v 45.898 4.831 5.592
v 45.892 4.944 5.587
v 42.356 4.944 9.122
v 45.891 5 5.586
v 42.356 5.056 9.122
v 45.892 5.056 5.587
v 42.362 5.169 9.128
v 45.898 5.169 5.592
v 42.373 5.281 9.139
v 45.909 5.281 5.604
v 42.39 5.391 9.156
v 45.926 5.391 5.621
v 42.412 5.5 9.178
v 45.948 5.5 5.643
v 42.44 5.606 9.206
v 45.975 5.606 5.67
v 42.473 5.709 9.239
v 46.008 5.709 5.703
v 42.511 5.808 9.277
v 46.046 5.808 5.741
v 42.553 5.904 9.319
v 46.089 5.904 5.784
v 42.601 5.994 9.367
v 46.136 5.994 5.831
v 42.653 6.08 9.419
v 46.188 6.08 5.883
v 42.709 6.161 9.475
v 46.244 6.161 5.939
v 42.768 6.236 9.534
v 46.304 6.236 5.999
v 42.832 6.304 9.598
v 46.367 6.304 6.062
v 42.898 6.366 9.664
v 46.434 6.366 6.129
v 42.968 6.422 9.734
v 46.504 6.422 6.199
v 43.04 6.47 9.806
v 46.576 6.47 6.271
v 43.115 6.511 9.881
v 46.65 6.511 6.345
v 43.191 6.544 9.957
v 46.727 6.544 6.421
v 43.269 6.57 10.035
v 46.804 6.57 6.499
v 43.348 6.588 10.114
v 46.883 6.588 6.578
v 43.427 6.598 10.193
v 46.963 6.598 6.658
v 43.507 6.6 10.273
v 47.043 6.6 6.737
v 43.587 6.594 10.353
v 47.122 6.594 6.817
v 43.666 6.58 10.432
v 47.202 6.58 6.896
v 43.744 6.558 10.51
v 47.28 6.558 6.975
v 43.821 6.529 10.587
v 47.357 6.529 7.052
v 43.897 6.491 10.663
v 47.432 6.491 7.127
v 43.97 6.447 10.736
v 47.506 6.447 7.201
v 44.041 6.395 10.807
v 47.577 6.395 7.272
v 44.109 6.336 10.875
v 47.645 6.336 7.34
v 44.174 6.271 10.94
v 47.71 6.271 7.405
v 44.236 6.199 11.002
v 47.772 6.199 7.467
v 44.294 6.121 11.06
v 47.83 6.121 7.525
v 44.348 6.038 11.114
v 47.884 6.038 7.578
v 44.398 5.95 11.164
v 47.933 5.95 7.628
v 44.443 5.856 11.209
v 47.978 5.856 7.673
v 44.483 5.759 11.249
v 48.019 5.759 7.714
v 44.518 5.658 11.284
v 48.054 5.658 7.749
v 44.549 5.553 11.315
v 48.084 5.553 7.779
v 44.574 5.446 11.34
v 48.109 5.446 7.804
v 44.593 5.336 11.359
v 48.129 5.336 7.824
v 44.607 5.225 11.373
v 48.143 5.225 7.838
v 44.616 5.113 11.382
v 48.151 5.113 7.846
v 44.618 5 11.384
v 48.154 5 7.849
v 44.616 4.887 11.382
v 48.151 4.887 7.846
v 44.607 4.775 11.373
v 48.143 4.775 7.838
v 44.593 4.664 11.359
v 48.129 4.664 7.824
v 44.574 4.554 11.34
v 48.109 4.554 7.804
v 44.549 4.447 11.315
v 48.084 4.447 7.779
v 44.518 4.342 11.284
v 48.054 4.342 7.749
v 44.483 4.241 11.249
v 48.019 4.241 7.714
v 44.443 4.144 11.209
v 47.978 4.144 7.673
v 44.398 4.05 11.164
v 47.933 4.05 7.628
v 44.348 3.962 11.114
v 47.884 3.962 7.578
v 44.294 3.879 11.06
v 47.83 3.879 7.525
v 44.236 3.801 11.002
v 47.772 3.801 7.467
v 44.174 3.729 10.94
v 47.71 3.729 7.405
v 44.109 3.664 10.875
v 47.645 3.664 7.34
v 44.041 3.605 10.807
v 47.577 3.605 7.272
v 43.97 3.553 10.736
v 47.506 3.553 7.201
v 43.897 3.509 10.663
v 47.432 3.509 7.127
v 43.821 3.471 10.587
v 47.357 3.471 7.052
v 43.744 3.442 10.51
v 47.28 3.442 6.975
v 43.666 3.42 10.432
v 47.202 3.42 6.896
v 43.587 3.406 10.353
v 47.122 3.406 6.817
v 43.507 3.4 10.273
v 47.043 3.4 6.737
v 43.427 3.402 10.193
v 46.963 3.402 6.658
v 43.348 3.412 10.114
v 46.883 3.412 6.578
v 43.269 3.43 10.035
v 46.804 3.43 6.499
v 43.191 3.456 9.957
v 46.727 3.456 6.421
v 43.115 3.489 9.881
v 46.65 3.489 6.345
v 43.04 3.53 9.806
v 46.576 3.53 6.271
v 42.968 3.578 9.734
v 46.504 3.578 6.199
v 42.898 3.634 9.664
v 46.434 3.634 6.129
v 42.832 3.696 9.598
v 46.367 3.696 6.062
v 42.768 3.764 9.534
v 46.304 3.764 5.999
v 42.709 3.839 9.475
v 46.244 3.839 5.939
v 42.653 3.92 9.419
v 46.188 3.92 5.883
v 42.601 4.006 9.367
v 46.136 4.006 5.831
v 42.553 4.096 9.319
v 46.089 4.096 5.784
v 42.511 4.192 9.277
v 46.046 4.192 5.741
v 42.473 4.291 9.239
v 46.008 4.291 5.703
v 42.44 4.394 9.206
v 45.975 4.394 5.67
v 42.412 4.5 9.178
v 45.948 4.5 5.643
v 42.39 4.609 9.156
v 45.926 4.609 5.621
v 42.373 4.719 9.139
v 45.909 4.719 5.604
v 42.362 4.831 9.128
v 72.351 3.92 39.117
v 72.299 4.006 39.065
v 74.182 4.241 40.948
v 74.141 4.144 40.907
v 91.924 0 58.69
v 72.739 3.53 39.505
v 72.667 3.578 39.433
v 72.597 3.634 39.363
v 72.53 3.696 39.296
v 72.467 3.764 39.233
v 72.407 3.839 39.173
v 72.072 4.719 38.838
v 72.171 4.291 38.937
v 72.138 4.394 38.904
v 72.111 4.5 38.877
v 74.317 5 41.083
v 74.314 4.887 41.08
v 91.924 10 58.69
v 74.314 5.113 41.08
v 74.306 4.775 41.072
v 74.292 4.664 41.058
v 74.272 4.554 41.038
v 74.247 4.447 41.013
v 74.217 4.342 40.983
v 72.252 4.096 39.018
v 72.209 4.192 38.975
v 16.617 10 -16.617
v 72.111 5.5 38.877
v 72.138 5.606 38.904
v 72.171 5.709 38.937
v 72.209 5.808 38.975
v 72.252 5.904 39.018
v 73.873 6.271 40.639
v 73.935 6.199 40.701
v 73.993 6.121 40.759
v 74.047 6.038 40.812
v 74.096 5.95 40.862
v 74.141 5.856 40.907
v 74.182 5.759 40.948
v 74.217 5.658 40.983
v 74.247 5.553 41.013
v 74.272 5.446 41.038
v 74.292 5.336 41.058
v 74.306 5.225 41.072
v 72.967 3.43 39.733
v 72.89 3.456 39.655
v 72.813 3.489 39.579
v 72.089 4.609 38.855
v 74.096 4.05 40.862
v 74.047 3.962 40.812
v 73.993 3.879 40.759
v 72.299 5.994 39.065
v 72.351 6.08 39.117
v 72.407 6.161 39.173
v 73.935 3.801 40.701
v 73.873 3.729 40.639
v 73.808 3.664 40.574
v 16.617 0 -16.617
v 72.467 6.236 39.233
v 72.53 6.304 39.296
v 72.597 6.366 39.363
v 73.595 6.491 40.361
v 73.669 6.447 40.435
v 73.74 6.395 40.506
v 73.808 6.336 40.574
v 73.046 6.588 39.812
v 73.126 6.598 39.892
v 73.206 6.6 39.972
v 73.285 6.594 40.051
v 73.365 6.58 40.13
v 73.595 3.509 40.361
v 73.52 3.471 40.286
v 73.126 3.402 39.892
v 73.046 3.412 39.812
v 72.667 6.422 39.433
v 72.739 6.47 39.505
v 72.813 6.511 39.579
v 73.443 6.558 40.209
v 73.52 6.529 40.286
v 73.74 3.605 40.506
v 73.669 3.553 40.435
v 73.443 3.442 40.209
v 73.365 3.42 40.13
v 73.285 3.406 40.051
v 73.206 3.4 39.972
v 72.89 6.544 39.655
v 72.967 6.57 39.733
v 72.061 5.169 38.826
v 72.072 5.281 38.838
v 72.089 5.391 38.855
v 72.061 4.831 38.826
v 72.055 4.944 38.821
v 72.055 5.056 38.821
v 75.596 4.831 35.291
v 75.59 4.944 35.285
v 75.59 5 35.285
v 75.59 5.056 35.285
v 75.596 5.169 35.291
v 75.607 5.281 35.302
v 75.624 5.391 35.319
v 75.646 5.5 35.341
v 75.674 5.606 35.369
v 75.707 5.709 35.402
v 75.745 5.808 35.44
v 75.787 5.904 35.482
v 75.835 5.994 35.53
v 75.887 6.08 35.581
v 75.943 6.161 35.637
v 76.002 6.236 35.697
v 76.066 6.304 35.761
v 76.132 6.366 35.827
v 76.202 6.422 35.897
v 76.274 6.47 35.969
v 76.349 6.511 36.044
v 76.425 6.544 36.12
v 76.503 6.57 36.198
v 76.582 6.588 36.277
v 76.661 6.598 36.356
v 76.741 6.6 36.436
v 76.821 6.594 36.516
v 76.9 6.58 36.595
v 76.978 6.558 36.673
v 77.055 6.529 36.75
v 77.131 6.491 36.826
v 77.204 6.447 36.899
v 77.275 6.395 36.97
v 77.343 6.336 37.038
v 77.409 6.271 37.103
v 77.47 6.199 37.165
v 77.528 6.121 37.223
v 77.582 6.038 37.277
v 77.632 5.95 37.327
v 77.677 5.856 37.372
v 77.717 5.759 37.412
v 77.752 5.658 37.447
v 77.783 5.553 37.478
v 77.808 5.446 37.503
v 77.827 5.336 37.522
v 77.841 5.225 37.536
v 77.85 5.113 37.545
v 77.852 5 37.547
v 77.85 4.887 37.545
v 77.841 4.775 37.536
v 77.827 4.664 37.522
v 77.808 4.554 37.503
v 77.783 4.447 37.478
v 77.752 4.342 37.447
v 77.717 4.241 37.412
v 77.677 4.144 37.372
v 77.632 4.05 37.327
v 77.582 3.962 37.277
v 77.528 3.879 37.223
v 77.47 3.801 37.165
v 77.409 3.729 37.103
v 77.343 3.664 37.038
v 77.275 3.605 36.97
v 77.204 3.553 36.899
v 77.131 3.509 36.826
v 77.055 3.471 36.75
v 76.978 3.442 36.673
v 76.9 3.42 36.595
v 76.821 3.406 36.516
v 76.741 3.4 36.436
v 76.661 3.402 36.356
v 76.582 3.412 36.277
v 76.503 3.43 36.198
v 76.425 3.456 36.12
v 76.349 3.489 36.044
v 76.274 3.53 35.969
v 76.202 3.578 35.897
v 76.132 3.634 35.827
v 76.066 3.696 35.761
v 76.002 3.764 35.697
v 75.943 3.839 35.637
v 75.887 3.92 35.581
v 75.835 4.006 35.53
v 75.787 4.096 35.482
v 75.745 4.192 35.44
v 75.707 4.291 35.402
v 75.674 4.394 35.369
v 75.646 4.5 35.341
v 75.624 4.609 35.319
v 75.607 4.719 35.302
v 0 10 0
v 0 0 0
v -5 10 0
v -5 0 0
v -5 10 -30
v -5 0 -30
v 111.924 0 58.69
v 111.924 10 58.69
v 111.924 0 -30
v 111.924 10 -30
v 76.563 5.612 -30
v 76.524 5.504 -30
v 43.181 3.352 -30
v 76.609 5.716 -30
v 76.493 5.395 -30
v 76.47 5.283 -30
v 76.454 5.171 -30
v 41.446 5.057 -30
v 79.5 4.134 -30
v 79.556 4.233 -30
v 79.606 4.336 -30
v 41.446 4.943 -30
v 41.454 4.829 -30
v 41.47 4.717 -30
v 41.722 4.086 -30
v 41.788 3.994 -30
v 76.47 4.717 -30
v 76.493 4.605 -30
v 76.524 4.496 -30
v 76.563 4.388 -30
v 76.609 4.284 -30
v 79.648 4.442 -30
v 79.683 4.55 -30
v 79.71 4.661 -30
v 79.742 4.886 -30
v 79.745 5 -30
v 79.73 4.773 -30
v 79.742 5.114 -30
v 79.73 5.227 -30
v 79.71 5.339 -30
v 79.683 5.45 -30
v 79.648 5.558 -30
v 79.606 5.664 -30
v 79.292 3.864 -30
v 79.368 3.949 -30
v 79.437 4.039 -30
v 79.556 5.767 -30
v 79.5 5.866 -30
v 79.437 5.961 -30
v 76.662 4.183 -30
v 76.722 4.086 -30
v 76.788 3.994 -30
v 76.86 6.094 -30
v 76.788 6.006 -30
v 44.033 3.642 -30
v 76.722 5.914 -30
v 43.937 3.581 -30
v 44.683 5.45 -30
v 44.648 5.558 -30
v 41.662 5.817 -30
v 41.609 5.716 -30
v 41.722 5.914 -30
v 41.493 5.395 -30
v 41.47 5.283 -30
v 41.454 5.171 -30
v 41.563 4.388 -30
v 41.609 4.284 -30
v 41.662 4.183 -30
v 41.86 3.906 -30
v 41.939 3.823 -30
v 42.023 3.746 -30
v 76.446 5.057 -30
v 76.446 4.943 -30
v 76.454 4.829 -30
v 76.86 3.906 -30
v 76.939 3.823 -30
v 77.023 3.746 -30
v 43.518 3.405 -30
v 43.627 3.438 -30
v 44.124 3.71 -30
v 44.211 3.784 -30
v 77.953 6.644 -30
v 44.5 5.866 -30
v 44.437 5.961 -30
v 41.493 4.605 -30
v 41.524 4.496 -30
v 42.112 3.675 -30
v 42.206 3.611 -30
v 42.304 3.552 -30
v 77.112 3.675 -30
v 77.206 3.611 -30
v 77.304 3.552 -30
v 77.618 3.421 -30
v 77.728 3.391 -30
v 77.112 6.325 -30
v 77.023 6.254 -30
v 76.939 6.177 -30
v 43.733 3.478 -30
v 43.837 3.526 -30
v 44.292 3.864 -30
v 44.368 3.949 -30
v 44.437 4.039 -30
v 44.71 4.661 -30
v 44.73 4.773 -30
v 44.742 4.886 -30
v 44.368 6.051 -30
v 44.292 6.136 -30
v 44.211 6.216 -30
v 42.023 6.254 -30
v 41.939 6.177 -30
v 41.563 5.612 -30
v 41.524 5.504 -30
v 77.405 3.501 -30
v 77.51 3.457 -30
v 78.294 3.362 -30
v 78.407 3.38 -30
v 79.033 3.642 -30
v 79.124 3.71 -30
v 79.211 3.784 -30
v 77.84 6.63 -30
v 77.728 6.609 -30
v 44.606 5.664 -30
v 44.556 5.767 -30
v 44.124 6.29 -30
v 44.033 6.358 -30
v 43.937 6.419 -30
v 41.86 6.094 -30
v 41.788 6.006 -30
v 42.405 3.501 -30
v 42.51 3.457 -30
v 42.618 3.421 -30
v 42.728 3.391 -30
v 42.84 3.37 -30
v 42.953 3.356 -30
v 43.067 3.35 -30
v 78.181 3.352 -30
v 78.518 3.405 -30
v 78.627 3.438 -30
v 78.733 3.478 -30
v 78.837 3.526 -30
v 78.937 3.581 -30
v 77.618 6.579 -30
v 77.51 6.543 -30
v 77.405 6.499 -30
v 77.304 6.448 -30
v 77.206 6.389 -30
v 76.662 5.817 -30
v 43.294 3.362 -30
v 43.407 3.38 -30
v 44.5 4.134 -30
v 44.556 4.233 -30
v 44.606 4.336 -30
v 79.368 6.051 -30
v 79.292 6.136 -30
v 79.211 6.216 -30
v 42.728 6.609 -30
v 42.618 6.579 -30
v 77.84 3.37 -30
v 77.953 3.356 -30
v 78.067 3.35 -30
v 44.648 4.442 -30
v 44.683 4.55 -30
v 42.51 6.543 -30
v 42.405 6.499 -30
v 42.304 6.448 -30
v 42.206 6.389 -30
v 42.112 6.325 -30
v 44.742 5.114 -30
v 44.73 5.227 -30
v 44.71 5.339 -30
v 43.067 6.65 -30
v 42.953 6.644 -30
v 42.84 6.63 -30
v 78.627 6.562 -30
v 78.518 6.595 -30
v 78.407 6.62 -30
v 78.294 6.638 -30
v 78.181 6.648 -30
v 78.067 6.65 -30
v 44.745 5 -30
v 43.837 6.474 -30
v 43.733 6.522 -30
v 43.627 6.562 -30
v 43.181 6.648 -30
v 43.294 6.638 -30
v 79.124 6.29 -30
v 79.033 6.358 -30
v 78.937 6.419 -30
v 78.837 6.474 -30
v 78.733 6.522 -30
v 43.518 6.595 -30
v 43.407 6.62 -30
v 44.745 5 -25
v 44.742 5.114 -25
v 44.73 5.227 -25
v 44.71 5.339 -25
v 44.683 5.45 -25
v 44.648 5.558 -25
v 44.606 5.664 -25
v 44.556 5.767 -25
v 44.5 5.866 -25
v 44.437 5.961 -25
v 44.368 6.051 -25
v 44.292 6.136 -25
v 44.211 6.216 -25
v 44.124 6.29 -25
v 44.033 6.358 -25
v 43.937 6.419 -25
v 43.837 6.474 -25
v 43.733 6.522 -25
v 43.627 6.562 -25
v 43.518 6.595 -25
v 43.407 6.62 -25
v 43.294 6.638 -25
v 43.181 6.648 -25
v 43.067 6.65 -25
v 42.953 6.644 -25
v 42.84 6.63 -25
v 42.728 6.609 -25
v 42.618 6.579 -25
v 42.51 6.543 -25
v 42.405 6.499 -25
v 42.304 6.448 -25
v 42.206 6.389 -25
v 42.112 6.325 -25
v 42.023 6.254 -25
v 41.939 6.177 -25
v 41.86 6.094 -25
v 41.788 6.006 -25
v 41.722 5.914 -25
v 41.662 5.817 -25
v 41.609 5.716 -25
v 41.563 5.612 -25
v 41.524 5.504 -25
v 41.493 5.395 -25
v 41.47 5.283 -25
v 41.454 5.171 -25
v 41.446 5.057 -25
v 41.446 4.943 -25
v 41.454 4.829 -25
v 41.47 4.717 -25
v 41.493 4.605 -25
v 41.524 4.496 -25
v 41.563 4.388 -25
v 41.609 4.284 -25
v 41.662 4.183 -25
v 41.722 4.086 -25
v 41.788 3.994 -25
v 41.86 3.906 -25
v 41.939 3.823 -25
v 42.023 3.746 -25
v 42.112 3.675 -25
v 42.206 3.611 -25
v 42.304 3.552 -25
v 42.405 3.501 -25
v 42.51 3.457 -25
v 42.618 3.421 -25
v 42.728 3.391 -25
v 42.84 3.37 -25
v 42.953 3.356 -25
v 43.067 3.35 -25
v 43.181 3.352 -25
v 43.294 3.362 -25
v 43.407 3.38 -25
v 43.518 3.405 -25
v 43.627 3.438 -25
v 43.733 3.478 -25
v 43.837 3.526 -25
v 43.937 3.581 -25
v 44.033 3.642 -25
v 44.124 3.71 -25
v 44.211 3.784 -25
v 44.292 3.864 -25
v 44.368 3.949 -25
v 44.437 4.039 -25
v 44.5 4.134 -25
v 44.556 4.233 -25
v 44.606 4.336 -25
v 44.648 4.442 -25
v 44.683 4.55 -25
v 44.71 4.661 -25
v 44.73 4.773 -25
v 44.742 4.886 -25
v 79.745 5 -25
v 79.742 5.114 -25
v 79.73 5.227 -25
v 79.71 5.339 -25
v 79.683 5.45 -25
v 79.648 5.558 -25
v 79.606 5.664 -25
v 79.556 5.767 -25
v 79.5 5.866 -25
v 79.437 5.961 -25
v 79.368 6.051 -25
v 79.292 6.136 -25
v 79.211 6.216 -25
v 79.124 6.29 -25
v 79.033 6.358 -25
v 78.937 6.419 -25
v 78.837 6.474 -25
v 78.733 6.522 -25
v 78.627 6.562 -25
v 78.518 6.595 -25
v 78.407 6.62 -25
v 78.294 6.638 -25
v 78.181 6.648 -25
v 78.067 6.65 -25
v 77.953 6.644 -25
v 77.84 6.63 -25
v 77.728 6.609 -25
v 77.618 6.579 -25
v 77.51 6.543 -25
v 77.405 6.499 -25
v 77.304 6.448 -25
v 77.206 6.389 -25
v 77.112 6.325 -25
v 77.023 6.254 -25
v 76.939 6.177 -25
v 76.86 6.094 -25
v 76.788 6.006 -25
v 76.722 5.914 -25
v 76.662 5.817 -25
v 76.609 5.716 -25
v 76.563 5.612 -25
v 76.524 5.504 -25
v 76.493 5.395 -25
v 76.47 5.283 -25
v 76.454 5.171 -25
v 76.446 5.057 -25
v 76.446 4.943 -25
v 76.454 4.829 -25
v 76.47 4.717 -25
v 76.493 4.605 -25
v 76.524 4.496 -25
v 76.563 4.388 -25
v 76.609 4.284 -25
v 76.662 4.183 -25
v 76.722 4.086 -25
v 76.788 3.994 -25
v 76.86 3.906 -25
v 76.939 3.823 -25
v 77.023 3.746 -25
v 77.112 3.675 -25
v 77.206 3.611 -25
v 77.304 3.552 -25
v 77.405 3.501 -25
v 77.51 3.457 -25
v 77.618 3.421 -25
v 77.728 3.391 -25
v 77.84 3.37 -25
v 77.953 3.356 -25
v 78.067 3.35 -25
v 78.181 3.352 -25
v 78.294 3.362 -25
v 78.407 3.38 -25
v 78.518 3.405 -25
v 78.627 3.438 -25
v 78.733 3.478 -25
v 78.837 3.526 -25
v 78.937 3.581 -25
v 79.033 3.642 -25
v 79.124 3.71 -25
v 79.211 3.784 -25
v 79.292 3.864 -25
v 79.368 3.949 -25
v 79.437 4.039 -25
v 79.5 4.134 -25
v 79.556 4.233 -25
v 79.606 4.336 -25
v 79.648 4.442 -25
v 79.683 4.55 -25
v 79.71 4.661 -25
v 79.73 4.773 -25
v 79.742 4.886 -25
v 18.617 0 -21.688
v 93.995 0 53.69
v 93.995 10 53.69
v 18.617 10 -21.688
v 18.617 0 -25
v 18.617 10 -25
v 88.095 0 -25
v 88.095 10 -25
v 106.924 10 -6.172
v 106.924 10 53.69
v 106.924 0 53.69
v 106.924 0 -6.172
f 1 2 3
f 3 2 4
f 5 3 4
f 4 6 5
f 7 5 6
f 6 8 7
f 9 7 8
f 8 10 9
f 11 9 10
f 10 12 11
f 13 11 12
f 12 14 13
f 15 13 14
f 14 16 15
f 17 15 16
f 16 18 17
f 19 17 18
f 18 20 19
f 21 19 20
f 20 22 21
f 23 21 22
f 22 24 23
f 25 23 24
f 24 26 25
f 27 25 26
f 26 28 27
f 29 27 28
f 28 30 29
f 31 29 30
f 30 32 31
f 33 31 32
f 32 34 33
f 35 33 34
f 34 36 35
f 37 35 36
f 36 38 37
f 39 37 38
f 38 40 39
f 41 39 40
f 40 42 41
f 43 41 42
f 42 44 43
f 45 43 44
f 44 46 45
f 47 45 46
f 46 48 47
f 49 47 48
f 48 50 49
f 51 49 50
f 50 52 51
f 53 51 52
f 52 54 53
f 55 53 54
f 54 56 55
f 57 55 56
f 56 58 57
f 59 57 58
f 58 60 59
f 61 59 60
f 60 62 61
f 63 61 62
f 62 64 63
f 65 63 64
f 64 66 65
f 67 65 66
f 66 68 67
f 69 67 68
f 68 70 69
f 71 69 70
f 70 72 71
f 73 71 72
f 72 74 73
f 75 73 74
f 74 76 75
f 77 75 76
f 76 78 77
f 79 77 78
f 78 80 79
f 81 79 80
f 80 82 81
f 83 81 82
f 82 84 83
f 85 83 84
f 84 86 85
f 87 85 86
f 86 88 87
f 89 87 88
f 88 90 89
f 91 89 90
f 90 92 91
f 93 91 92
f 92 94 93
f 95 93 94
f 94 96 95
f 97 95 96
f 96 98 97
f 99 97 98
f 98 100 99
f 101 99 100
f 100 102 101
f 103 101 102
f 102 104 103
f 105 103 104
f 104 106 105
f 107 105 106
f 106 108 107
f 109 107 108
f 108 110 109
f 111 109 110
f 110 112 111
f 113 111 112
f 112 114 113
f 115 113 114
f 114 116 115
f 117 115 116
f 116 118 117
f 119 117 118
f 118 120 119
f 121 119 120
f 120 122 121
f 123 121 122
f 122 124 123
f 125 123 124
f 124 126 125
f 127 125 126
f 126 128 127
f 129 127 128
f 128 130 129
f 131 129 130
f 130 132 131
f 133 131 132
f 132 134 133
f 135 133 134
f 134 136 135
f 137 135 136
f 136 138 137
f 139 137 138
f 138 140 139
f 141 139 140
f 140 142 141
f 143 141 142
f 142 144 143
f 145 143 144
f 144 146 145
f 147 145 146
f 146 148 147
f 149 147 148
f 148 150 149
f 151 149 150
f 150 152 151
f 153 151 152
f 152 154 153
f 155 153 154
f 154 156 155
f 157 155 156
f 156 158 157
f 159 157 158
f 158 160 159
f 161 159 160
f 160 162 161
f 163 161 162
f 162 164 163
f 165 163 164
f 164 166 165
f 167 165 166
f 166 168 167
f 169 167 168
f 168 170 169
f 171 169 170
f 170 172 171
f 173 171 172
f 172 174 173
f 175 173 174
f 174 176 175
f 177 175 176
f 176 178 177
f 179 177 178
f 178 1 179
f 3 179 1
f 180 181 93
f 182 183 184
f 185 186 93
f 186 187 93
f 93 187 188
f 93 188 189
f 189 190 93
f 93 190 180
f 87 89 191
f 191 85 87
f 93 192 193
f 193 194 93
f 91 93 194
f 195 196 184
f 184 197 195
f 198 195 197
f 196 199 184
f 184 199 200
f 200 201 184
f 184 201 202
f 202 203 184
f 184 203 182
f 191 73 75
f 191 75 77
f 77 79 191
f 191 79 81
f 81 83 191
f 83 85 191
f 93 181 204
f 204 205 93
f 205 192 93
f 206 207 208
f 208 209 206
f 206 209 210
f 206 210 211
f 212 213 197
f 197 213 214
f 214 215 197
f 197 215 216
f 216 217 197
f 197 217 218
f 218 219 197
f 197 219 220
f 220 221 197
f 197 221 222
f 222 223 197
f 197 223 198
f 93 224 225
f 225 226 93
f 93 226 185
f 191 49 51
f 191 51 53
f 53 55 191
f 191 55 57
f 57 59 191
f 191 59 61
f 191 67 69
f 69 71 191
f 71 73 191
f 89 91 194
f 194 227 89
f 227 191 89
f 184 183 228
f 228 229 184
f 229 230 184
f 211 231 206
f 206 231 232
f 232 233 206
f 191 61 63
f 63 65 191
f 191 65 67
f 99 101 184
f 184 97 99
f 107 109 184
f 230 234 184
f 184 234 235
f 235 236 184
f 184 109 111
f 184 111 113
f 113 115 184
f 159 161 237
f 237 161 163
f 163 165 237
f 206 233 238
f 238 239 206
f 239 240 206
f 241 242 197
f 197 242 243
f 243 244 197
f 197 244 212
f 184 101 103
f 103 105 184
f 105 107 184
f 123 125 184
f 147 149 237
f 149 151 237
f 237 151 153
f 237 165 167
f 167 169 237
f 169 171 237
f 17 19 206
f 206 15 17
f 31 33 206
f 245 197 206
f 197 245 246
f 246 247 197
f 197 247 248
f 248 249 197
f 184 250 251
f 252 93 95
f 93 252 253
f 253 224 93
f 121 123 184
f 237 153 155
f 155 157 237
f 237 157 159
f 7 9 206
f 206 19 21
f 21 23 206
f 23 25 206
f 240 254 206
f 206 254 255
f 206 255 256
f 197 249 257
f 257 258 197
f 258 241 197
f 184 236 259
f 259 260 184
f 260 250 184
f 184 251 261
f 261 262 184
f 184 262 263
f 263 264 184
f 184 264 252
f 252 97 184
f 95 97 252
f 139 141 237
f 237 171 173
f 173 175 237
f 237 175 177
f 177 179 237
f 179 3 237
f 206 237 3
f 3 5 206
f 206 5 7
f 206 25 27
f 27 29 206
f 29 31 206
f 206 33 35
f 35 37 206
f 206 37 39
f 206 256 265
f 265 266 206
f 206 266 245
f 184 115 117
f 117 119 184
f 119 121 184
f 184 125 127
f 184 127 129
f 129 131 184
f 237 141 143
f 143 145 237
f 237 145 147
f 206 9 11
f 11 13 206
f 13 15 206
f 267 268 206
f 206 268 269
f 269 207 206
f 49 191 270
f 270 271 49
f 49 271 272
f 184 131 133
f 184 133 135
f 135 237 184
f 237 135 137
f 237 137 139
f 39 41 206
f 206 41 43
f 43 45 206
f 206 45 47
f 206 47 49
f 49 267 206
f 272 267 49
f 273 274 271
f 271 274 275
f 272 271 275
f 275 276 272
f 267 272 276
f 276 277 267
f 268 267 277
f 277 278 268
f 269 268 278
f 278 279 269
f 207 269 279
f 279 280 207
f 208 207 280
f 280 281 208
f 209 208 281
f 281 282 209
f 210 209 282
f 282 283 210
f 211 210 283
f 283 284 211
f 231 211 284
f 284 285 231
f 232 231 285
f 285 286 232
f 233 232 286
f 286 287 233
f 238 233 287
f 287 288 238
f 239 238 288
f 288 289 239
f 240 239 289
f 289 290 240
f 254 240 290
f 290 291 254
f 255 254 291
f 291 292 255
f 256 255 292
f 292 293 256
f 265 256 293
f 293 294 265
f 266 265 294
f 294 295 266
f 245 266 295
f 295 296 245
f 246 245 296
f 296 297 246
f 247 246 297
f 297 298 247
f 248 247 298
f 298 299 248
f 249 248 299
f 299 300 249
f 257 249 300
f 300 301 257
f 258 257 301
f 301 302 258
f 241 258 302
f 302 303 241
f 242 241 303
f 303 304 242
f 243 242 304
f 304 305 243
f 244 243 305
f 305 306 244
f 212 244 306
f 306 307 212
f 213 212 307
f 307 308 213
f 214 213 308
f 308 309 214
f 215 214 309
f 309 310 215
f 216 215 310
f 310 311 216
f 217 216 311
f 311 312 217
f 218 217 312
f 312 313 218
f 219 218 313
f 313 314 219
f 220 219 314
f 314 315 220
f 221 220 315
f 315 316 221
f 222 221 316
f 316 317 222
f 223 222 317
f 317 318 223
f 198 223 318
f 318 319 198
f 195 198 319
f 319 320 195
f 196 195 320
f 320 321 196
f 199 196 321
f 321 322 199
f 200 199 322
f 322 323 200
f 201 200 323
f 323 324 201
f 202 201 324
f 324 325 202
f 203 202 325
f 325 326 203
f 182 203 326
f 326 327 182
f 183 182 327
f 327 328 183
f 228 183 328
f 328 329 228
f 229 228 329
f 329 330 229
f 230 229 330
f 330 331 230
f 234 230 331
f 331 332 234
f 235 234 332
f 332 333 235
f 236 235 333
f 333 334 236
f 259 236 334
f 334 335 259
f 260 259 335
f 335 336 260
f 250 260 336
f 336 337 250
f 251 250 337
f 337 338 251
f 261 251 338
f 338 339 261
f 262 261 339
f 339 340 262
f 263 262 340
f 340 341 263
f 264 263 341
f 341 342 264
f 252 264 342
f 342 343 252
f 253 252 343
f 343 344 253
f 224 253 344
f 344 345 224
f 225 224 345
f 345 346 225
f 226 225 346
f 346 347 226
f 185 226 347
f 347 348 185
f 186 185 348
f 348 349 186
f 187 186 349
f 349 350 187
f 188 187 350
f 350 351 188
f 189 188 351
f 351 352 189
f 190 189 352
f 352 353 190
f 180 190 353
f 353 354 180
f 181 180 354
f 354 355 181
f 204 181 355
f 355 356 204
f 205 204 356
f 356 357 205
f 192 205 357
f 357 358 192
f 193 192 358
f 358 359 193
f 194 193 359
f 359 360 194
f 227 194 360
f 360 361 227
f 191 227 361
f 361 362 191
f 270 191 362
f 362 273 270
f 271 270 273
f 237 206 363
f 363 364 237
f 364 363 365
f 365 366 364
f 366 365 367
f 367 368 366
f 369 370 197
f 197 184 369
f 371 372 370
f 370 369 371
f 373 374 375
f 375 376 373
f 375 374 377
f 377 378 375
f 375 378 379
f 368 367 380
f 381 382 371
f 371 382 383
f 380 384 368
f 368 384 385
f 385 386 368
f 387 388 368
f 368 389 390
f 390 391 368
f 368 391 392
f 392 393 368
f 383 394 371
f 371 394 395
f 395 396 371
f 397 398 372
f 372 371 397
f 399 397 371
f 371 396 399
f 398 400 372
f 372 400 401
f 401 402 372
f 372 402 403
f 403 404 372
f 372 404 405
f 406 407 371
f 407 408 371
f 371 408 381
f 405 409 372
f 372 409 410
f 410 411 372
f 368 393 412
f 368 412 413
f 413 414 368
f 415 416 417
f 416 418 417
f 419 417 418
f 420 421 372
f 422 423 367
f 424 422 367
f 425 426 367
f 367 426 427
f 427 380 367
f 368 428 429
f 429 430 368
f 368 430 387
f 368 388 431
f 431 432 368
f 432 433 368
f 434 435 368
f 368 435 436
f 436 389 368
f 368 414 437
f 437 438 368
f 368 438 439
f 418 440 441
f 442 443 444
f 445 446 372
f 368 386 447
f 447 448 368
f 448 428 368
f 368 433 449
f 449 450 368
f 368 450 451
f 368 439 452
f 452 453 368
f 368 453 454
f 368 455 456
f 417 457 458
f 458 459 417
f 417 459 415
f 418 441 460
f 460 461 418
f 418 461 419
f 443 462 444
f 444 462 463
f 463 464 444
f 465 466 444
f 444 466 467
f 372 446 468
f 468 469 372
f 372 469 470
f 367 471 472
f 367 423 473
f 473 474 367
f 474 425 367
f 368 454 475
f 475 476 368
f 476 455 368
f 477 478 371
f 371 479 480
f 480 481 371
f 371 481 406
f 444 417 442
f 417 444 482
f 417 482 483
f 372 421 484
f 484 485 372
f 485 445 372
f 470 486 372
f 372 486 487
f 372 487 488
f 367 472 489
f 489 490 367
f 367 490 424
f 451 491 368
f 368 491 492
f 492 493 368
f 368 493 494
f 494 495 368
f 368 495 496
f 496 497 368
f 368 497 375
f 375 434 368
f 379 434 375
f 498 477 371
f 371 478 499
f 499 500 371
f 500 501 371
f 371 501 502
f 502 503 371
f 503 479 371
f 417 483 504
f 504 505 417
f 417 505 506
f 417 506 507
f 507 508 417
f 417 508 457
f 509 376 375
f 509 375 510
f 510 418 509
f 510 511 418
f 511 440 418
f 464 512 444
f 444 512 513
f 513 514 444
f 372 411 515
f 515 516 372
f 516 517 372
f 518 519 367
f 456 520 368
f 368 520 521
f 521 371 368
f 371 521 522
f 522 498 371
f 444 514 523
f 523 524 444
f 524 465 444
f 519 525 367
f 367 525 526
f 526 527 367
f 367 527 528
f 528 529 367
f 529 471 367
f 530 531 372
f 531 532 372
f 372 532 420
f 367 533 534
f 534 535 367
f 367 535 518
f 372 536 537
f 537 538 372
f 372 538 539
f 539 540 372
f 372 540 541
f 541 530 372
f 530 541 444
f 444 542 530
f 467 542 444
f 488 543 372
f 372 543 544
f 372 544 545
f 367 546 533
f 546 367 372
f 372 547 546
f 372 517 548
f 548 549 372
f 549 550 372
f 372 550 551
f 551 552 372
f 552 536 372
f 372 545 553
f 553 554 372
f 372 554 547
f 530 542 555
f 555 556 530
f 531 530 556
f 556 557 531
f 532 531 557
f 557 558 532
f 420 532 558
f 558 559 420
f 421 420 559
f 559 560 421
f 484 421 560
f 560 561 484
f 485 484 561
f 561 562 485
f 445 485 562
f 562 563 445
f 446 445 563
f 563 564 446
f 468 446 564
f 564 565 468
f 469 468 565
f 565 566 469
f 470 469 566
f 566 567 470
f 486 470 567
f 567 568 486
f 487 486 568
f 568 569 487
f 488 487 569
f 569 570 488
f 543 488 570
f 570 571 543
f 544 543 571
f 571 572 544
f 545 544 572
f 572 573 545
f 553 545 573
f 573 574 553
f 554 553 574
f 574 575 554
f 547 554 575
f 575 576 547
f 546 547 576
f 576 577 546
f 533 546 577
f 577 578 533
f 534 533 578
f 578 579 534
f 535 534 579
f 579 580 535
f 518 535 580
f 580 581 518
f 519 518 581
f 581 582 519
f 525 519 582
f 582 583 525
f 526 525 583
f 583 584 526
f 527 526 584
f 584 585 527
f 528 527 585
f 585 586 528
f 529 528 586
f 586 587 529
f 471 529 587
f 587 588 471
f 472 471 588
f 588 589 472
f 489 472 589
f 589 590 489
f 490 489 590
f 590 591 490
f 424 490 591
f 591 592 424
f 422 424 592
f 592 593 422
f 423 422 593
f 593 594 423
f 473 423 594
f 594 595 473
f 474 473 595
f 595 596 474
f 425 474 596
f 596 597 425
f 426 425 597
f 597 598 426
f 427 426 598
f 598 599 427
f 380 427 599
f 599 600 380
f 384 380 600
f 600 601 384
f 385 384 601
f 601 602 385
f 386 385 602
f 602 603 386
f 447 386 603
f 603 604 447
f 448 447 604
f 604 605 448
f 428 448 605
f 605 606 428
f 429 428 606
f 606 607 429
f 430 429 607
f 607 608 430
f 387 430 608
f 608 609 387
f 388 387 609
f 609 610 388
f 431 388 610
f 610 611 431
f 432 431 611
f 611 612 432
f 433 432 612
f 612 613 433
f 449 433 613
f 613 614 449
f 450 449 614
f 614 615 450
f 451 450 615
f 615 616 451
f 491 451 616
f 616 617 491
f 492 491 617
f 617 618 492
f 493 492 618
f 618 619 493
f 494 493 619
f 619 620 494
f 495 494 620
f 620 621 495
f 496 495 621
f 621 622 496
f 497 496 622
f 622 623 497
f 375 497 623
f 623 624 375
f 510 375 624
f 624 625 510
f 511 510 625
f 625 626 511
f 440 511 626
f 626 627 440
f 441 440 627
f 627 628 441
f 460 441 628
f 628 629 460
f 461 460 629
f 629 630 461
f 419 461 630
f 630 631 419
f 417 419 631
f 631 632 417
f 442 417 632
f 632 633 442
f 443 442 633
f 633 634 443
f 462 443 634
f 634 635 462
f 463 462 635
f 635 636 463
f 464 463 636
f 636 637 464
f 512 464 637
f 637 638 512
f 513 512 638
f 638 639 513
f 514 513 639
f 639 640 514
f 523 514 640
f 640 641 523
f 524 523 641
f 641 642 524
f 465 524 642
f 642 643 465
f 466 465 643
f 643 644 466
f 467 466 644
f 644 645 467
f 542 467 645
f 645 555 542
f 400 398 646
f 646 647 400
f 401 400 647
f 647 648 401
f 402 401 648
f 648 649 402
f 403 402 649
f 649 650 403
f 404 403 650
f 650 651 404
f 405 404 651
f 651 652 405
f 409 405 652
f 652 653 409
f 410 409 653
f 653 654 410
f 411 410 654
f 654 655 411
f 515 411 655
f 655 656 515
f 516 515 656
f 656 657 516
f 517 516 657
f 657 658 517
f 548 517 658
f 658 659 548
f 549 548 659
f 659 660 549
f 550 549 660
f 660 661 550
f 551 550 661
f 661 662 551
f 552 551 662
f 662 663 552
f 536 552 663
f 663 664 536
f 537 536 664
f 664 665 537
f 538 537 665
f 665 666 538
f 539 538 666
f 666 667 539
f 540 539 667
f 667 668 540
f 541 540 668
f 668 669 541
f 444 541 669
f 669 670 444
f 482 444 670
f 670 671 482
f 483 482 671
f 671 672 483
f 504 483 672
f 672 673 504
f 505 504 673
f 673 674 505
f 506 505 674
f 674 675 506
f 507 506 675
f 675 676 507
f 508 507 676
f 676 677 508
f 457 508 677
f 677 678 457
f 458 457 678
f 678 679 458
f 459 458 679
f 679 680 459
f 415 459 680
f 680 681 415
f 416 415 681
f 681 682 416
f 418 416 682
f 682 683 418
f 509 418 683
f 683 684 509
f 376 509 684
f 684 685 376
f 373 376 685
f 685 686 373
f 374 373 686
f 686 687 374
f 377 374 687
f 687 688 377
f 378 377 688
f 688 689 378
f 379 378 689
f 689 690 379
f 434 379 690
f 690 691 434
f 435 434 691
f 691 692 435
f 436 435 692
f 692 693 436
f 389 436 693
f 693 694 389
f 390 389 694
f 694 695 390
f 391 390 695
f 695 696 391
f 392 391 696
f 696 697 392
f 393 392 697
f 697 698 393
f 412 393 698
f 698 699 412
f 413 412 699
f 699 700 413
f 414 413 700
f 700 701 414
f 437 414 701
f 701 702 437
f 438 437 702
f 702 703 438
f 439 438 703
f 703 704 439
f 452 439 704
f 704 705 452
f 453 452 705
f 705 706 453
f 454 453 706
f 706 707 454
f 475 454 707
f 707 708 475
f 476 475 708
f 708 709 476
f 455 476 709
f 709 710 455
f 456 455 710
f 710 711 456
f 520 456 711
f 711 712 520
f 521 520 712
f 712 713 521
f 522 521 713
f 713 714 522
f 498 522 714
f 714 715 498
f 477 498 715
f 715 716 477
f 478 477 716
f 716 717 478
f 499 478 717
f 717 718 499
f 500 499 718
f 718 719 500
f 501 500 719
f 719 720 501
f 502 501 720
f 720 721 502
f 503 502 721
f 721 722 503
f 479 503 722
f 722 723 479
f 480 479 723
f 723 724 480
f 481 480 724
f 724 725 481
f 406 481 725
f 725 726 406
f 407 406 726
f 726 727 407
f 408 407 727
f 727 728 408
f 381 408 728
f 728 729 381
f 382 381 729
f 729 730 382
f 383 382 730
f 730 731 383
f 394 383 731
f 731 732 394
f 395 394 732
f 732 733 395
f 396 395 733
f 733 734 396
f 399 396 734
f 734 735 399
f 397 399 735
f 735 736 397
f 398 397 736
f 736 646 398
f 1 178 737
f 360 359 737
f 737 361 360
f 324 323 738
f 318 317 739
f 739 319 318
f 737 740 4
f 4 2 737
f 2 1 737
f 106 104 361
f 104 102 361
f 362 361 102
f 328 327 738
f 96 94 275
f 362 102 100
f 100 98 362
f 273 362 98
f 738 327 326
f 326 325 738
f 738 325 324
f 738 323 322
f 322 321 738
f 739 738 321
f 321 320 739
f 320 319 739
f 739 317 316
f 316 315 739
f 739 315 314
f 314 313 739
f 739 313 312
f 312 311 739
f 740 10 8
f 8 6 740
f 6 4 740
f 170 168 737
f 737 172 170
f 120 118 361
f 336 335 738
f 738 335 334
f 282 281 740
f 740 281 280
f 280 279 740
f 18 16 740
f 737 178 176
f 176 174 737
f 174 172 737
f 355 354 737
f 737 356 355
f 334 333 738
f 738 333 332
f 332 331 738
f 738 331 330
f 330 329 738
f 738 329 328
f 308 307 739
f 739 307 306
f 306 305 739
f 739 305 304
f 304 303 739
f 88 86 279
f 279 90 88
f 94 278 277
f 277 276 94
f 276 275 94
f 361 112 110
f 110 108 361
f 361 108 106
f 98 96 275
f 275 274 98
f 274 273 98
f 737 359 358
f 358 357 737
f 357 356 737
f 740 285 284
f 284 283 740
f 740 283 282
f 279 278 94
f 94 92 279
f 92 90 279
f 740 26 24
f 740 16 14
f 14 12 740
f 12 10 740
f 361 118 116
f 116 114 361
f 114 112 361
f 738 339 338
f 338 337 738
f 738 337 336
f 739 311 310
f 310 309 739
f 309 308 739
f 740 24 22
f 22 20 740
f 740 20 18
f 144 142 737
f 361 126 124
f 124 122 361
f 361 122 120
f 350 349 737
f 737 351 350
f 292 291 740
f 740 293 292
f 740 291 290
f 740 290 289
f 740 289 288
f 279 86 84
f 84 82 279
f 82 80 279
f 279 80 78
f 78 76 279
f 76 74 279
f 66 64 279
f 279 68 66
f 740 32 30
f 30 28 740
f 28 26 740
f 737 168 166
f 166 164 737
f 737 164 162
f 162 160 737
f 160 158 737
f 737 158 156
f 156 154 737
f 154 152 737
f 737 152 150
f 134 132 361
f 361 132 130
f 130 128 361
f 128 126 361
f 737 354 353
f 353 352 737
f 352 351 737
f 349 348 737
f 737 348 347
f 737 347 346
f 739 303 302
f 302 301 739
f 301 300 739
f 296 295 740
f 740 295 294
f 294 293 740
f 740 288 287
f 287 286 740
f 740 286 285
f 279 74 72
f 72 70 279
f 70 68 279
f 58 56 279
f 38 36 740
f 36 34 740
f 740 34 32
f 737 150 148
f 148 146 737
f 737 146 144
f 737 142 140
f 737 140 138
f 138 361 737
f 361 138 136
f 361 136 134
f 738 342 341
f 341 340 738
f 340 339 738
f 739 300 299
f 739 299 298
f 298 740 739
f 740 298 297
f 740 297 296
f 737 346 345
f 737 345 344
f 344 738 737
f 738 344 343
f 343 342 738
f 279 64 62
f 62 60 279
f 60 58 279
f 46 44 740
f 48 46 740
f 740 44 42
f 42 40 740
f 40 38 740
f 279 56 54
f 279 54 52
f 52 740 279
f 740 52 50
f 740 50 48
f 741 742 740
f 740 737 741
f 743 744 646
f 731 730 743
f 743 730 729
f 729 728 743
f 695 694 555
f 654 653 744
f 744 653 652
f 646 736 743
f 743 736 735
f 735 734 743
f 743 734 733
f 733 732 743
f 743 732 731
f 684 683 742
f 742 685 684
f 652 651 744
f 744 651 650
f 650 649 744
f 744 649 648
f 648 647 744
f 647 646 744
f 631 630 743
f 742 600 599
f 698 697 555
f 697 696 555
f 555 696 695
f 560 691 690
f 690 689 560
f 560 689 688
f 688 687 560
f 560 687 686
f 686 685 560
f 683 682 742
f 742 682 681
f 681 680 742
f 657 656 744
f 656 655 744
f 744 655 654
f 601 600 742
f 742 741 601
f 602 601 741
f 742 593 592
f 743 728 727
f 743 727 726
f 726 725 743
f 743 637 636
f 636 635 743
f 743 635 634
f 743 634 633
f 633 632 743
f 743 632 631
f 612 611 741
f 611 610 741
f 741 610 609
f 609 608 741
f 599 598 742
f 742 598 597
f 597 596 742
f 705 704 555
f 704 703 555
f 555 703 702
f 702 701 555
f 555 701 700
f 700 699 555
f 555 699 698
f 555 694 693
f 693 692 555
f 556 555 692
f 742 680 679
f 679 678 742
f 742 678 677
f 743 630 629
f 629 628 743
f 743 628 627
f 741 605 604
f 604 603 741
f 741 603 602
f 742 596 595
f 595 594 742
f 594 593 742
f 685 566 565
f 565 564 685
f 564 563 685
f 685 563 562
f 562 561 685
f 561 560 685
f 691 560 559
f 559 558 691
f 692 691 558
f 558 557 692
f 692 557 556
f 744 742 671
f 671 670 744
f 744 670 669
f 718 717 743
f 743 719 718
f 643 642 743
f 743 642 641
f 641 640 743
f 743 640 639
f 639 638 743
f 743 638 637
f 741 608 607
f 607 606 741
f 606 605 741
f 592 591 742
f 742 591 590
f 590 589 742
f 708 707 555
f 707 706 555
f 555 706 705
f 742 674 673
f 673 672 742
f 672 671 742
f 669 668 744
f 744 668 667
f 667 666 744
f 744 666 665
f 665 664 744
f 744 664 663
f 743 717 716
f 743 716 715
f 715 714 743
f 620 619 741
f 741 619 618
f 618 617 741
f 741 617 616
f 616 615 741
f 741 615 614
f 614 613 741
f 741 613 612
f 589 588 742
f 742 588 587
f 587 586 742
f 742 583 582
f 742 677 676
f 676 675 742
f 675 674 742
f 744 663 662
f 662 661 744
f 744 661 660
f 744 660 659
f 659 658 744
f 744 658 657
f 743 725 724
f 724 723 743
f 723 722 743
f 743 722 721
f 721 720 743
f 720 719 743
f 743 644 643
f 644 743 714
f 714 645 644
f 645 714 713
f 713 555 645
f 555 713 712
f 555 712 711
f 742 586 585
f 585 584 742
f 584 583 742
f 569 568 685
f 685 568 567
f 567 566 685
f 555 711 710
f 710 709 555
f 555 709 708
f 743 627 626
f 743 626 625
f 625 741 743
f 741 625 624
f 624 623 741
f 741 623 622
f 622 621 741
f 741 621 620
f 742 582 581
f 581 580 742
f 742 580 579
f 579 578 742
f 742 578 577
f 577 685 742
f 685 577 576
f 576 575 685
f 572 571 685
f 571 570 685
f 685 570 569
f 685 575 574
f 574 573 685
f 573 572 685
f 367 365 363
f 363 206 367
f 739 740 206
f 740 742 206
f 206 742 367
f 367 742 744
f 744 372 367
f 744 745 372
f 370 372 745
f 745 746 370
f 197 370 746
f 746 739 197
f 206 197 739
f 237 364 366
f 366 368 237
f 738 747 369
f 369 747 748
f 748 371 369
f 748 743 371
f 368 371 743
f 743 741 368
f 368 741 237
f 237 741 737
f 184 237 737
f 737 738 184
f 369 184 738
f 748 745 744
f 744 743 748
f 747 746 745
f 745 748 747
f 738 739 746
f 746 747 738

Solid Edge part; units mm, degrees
sketch "Sketch1" plane through (0, 0, 0) normal (0, -1, 0) x (1, 0, 0)
  line L0 (-5, -30) -> (-5, 0)
  line L1 (0, 0) -> (-5, 0)
  line L2 (0, 0) -> (16.617, -16.617)
  line L3 (16.617, -16.617) -> (91.9239, 58.6899)
  line L4 (91.9239, 58.6899) -> (111.9239, 58.6899)
  line L5 (111.9239, -30) -> (111.9239, 58.6899)
  line L6 (-5, -30) -> (111.9239, -30)
  line L7 (56.306, 16.0009) -> (93.9949, 53.6899)
  line L8 (93.9949, 53.6899) -> (106.9239, 53.6899)
  line L9 (106.9239, 24.3449) -> (106.9239, 53.6899)
  line L10 (106.9239, -6.1716) -> (106.9239, 24.3449)
  line L11 (97.5097, -15.5858) -> (106.9239, -6.1716)
  line L12 (97.5097, -15.5858) -> (88.0955, -25)
  line L13 (88.0955, -25) -> (52.7704, -25)
  line L14 (18.617, -25) -> (52.7704, -25)
  line L15 (18.617, -21.6881) -> (18.617, -25)
  line L16 (56.306, 16.0009) -> (18.617, -21.6881)
  dimension "D1" = 23.5
  dimension "D2" = 106.5
  dimension "D3" = 5
  dimension "D4" = 20
  dimension "D5" = 88.6899
  dimension "D6" = 30
  dimension "D7" = 29.3449
  dimension "D8" = 53.3003
  dimension "D9" = 12.9289
  dimension "D10" = 53.3003
  dimension "D11" = 3.3119
  dimension "D12" = 34.1534
  dimension "D13" = 13.3137
  dimension "D14" = 35.325
extrude "Protrusion1" add sketch "Sketch1" against normal blind 10
sketch "Sketch2" plane through (54.2704, 3.5, 21.0364) normal (-0.7071, 0, 0.7071) x (0.7071, 0, 0.7071)
  circle A0 centre (-15.25, 1.5) radius 1.6
  circle A1 centre (26.75, 1.5) radius 1.6
  dimension "D1" = 3.2
  dimension "D2" = 3.2
  dimension "D3" = 42
  dimension "D4" = 38
extrude "Cutout1" cut sketch "Sketch2" against normal up to next
sketch "Sketch3" plane through (53.3562, 5, -25) normal (0, 0, 1) x (1, 0, 0)
  circle A0 centre (-10.2608, 0) radius 1.65
  circle A1 centre (24.7392, 0) radius 1.65
  dimension "D1" = 3.3
  dimension "D2" = 3.3
  dimension "D3" = 10
  dimension "D4" = 35
extrude "Cutout2" cut sketch "Sketch3" against normal up to next
